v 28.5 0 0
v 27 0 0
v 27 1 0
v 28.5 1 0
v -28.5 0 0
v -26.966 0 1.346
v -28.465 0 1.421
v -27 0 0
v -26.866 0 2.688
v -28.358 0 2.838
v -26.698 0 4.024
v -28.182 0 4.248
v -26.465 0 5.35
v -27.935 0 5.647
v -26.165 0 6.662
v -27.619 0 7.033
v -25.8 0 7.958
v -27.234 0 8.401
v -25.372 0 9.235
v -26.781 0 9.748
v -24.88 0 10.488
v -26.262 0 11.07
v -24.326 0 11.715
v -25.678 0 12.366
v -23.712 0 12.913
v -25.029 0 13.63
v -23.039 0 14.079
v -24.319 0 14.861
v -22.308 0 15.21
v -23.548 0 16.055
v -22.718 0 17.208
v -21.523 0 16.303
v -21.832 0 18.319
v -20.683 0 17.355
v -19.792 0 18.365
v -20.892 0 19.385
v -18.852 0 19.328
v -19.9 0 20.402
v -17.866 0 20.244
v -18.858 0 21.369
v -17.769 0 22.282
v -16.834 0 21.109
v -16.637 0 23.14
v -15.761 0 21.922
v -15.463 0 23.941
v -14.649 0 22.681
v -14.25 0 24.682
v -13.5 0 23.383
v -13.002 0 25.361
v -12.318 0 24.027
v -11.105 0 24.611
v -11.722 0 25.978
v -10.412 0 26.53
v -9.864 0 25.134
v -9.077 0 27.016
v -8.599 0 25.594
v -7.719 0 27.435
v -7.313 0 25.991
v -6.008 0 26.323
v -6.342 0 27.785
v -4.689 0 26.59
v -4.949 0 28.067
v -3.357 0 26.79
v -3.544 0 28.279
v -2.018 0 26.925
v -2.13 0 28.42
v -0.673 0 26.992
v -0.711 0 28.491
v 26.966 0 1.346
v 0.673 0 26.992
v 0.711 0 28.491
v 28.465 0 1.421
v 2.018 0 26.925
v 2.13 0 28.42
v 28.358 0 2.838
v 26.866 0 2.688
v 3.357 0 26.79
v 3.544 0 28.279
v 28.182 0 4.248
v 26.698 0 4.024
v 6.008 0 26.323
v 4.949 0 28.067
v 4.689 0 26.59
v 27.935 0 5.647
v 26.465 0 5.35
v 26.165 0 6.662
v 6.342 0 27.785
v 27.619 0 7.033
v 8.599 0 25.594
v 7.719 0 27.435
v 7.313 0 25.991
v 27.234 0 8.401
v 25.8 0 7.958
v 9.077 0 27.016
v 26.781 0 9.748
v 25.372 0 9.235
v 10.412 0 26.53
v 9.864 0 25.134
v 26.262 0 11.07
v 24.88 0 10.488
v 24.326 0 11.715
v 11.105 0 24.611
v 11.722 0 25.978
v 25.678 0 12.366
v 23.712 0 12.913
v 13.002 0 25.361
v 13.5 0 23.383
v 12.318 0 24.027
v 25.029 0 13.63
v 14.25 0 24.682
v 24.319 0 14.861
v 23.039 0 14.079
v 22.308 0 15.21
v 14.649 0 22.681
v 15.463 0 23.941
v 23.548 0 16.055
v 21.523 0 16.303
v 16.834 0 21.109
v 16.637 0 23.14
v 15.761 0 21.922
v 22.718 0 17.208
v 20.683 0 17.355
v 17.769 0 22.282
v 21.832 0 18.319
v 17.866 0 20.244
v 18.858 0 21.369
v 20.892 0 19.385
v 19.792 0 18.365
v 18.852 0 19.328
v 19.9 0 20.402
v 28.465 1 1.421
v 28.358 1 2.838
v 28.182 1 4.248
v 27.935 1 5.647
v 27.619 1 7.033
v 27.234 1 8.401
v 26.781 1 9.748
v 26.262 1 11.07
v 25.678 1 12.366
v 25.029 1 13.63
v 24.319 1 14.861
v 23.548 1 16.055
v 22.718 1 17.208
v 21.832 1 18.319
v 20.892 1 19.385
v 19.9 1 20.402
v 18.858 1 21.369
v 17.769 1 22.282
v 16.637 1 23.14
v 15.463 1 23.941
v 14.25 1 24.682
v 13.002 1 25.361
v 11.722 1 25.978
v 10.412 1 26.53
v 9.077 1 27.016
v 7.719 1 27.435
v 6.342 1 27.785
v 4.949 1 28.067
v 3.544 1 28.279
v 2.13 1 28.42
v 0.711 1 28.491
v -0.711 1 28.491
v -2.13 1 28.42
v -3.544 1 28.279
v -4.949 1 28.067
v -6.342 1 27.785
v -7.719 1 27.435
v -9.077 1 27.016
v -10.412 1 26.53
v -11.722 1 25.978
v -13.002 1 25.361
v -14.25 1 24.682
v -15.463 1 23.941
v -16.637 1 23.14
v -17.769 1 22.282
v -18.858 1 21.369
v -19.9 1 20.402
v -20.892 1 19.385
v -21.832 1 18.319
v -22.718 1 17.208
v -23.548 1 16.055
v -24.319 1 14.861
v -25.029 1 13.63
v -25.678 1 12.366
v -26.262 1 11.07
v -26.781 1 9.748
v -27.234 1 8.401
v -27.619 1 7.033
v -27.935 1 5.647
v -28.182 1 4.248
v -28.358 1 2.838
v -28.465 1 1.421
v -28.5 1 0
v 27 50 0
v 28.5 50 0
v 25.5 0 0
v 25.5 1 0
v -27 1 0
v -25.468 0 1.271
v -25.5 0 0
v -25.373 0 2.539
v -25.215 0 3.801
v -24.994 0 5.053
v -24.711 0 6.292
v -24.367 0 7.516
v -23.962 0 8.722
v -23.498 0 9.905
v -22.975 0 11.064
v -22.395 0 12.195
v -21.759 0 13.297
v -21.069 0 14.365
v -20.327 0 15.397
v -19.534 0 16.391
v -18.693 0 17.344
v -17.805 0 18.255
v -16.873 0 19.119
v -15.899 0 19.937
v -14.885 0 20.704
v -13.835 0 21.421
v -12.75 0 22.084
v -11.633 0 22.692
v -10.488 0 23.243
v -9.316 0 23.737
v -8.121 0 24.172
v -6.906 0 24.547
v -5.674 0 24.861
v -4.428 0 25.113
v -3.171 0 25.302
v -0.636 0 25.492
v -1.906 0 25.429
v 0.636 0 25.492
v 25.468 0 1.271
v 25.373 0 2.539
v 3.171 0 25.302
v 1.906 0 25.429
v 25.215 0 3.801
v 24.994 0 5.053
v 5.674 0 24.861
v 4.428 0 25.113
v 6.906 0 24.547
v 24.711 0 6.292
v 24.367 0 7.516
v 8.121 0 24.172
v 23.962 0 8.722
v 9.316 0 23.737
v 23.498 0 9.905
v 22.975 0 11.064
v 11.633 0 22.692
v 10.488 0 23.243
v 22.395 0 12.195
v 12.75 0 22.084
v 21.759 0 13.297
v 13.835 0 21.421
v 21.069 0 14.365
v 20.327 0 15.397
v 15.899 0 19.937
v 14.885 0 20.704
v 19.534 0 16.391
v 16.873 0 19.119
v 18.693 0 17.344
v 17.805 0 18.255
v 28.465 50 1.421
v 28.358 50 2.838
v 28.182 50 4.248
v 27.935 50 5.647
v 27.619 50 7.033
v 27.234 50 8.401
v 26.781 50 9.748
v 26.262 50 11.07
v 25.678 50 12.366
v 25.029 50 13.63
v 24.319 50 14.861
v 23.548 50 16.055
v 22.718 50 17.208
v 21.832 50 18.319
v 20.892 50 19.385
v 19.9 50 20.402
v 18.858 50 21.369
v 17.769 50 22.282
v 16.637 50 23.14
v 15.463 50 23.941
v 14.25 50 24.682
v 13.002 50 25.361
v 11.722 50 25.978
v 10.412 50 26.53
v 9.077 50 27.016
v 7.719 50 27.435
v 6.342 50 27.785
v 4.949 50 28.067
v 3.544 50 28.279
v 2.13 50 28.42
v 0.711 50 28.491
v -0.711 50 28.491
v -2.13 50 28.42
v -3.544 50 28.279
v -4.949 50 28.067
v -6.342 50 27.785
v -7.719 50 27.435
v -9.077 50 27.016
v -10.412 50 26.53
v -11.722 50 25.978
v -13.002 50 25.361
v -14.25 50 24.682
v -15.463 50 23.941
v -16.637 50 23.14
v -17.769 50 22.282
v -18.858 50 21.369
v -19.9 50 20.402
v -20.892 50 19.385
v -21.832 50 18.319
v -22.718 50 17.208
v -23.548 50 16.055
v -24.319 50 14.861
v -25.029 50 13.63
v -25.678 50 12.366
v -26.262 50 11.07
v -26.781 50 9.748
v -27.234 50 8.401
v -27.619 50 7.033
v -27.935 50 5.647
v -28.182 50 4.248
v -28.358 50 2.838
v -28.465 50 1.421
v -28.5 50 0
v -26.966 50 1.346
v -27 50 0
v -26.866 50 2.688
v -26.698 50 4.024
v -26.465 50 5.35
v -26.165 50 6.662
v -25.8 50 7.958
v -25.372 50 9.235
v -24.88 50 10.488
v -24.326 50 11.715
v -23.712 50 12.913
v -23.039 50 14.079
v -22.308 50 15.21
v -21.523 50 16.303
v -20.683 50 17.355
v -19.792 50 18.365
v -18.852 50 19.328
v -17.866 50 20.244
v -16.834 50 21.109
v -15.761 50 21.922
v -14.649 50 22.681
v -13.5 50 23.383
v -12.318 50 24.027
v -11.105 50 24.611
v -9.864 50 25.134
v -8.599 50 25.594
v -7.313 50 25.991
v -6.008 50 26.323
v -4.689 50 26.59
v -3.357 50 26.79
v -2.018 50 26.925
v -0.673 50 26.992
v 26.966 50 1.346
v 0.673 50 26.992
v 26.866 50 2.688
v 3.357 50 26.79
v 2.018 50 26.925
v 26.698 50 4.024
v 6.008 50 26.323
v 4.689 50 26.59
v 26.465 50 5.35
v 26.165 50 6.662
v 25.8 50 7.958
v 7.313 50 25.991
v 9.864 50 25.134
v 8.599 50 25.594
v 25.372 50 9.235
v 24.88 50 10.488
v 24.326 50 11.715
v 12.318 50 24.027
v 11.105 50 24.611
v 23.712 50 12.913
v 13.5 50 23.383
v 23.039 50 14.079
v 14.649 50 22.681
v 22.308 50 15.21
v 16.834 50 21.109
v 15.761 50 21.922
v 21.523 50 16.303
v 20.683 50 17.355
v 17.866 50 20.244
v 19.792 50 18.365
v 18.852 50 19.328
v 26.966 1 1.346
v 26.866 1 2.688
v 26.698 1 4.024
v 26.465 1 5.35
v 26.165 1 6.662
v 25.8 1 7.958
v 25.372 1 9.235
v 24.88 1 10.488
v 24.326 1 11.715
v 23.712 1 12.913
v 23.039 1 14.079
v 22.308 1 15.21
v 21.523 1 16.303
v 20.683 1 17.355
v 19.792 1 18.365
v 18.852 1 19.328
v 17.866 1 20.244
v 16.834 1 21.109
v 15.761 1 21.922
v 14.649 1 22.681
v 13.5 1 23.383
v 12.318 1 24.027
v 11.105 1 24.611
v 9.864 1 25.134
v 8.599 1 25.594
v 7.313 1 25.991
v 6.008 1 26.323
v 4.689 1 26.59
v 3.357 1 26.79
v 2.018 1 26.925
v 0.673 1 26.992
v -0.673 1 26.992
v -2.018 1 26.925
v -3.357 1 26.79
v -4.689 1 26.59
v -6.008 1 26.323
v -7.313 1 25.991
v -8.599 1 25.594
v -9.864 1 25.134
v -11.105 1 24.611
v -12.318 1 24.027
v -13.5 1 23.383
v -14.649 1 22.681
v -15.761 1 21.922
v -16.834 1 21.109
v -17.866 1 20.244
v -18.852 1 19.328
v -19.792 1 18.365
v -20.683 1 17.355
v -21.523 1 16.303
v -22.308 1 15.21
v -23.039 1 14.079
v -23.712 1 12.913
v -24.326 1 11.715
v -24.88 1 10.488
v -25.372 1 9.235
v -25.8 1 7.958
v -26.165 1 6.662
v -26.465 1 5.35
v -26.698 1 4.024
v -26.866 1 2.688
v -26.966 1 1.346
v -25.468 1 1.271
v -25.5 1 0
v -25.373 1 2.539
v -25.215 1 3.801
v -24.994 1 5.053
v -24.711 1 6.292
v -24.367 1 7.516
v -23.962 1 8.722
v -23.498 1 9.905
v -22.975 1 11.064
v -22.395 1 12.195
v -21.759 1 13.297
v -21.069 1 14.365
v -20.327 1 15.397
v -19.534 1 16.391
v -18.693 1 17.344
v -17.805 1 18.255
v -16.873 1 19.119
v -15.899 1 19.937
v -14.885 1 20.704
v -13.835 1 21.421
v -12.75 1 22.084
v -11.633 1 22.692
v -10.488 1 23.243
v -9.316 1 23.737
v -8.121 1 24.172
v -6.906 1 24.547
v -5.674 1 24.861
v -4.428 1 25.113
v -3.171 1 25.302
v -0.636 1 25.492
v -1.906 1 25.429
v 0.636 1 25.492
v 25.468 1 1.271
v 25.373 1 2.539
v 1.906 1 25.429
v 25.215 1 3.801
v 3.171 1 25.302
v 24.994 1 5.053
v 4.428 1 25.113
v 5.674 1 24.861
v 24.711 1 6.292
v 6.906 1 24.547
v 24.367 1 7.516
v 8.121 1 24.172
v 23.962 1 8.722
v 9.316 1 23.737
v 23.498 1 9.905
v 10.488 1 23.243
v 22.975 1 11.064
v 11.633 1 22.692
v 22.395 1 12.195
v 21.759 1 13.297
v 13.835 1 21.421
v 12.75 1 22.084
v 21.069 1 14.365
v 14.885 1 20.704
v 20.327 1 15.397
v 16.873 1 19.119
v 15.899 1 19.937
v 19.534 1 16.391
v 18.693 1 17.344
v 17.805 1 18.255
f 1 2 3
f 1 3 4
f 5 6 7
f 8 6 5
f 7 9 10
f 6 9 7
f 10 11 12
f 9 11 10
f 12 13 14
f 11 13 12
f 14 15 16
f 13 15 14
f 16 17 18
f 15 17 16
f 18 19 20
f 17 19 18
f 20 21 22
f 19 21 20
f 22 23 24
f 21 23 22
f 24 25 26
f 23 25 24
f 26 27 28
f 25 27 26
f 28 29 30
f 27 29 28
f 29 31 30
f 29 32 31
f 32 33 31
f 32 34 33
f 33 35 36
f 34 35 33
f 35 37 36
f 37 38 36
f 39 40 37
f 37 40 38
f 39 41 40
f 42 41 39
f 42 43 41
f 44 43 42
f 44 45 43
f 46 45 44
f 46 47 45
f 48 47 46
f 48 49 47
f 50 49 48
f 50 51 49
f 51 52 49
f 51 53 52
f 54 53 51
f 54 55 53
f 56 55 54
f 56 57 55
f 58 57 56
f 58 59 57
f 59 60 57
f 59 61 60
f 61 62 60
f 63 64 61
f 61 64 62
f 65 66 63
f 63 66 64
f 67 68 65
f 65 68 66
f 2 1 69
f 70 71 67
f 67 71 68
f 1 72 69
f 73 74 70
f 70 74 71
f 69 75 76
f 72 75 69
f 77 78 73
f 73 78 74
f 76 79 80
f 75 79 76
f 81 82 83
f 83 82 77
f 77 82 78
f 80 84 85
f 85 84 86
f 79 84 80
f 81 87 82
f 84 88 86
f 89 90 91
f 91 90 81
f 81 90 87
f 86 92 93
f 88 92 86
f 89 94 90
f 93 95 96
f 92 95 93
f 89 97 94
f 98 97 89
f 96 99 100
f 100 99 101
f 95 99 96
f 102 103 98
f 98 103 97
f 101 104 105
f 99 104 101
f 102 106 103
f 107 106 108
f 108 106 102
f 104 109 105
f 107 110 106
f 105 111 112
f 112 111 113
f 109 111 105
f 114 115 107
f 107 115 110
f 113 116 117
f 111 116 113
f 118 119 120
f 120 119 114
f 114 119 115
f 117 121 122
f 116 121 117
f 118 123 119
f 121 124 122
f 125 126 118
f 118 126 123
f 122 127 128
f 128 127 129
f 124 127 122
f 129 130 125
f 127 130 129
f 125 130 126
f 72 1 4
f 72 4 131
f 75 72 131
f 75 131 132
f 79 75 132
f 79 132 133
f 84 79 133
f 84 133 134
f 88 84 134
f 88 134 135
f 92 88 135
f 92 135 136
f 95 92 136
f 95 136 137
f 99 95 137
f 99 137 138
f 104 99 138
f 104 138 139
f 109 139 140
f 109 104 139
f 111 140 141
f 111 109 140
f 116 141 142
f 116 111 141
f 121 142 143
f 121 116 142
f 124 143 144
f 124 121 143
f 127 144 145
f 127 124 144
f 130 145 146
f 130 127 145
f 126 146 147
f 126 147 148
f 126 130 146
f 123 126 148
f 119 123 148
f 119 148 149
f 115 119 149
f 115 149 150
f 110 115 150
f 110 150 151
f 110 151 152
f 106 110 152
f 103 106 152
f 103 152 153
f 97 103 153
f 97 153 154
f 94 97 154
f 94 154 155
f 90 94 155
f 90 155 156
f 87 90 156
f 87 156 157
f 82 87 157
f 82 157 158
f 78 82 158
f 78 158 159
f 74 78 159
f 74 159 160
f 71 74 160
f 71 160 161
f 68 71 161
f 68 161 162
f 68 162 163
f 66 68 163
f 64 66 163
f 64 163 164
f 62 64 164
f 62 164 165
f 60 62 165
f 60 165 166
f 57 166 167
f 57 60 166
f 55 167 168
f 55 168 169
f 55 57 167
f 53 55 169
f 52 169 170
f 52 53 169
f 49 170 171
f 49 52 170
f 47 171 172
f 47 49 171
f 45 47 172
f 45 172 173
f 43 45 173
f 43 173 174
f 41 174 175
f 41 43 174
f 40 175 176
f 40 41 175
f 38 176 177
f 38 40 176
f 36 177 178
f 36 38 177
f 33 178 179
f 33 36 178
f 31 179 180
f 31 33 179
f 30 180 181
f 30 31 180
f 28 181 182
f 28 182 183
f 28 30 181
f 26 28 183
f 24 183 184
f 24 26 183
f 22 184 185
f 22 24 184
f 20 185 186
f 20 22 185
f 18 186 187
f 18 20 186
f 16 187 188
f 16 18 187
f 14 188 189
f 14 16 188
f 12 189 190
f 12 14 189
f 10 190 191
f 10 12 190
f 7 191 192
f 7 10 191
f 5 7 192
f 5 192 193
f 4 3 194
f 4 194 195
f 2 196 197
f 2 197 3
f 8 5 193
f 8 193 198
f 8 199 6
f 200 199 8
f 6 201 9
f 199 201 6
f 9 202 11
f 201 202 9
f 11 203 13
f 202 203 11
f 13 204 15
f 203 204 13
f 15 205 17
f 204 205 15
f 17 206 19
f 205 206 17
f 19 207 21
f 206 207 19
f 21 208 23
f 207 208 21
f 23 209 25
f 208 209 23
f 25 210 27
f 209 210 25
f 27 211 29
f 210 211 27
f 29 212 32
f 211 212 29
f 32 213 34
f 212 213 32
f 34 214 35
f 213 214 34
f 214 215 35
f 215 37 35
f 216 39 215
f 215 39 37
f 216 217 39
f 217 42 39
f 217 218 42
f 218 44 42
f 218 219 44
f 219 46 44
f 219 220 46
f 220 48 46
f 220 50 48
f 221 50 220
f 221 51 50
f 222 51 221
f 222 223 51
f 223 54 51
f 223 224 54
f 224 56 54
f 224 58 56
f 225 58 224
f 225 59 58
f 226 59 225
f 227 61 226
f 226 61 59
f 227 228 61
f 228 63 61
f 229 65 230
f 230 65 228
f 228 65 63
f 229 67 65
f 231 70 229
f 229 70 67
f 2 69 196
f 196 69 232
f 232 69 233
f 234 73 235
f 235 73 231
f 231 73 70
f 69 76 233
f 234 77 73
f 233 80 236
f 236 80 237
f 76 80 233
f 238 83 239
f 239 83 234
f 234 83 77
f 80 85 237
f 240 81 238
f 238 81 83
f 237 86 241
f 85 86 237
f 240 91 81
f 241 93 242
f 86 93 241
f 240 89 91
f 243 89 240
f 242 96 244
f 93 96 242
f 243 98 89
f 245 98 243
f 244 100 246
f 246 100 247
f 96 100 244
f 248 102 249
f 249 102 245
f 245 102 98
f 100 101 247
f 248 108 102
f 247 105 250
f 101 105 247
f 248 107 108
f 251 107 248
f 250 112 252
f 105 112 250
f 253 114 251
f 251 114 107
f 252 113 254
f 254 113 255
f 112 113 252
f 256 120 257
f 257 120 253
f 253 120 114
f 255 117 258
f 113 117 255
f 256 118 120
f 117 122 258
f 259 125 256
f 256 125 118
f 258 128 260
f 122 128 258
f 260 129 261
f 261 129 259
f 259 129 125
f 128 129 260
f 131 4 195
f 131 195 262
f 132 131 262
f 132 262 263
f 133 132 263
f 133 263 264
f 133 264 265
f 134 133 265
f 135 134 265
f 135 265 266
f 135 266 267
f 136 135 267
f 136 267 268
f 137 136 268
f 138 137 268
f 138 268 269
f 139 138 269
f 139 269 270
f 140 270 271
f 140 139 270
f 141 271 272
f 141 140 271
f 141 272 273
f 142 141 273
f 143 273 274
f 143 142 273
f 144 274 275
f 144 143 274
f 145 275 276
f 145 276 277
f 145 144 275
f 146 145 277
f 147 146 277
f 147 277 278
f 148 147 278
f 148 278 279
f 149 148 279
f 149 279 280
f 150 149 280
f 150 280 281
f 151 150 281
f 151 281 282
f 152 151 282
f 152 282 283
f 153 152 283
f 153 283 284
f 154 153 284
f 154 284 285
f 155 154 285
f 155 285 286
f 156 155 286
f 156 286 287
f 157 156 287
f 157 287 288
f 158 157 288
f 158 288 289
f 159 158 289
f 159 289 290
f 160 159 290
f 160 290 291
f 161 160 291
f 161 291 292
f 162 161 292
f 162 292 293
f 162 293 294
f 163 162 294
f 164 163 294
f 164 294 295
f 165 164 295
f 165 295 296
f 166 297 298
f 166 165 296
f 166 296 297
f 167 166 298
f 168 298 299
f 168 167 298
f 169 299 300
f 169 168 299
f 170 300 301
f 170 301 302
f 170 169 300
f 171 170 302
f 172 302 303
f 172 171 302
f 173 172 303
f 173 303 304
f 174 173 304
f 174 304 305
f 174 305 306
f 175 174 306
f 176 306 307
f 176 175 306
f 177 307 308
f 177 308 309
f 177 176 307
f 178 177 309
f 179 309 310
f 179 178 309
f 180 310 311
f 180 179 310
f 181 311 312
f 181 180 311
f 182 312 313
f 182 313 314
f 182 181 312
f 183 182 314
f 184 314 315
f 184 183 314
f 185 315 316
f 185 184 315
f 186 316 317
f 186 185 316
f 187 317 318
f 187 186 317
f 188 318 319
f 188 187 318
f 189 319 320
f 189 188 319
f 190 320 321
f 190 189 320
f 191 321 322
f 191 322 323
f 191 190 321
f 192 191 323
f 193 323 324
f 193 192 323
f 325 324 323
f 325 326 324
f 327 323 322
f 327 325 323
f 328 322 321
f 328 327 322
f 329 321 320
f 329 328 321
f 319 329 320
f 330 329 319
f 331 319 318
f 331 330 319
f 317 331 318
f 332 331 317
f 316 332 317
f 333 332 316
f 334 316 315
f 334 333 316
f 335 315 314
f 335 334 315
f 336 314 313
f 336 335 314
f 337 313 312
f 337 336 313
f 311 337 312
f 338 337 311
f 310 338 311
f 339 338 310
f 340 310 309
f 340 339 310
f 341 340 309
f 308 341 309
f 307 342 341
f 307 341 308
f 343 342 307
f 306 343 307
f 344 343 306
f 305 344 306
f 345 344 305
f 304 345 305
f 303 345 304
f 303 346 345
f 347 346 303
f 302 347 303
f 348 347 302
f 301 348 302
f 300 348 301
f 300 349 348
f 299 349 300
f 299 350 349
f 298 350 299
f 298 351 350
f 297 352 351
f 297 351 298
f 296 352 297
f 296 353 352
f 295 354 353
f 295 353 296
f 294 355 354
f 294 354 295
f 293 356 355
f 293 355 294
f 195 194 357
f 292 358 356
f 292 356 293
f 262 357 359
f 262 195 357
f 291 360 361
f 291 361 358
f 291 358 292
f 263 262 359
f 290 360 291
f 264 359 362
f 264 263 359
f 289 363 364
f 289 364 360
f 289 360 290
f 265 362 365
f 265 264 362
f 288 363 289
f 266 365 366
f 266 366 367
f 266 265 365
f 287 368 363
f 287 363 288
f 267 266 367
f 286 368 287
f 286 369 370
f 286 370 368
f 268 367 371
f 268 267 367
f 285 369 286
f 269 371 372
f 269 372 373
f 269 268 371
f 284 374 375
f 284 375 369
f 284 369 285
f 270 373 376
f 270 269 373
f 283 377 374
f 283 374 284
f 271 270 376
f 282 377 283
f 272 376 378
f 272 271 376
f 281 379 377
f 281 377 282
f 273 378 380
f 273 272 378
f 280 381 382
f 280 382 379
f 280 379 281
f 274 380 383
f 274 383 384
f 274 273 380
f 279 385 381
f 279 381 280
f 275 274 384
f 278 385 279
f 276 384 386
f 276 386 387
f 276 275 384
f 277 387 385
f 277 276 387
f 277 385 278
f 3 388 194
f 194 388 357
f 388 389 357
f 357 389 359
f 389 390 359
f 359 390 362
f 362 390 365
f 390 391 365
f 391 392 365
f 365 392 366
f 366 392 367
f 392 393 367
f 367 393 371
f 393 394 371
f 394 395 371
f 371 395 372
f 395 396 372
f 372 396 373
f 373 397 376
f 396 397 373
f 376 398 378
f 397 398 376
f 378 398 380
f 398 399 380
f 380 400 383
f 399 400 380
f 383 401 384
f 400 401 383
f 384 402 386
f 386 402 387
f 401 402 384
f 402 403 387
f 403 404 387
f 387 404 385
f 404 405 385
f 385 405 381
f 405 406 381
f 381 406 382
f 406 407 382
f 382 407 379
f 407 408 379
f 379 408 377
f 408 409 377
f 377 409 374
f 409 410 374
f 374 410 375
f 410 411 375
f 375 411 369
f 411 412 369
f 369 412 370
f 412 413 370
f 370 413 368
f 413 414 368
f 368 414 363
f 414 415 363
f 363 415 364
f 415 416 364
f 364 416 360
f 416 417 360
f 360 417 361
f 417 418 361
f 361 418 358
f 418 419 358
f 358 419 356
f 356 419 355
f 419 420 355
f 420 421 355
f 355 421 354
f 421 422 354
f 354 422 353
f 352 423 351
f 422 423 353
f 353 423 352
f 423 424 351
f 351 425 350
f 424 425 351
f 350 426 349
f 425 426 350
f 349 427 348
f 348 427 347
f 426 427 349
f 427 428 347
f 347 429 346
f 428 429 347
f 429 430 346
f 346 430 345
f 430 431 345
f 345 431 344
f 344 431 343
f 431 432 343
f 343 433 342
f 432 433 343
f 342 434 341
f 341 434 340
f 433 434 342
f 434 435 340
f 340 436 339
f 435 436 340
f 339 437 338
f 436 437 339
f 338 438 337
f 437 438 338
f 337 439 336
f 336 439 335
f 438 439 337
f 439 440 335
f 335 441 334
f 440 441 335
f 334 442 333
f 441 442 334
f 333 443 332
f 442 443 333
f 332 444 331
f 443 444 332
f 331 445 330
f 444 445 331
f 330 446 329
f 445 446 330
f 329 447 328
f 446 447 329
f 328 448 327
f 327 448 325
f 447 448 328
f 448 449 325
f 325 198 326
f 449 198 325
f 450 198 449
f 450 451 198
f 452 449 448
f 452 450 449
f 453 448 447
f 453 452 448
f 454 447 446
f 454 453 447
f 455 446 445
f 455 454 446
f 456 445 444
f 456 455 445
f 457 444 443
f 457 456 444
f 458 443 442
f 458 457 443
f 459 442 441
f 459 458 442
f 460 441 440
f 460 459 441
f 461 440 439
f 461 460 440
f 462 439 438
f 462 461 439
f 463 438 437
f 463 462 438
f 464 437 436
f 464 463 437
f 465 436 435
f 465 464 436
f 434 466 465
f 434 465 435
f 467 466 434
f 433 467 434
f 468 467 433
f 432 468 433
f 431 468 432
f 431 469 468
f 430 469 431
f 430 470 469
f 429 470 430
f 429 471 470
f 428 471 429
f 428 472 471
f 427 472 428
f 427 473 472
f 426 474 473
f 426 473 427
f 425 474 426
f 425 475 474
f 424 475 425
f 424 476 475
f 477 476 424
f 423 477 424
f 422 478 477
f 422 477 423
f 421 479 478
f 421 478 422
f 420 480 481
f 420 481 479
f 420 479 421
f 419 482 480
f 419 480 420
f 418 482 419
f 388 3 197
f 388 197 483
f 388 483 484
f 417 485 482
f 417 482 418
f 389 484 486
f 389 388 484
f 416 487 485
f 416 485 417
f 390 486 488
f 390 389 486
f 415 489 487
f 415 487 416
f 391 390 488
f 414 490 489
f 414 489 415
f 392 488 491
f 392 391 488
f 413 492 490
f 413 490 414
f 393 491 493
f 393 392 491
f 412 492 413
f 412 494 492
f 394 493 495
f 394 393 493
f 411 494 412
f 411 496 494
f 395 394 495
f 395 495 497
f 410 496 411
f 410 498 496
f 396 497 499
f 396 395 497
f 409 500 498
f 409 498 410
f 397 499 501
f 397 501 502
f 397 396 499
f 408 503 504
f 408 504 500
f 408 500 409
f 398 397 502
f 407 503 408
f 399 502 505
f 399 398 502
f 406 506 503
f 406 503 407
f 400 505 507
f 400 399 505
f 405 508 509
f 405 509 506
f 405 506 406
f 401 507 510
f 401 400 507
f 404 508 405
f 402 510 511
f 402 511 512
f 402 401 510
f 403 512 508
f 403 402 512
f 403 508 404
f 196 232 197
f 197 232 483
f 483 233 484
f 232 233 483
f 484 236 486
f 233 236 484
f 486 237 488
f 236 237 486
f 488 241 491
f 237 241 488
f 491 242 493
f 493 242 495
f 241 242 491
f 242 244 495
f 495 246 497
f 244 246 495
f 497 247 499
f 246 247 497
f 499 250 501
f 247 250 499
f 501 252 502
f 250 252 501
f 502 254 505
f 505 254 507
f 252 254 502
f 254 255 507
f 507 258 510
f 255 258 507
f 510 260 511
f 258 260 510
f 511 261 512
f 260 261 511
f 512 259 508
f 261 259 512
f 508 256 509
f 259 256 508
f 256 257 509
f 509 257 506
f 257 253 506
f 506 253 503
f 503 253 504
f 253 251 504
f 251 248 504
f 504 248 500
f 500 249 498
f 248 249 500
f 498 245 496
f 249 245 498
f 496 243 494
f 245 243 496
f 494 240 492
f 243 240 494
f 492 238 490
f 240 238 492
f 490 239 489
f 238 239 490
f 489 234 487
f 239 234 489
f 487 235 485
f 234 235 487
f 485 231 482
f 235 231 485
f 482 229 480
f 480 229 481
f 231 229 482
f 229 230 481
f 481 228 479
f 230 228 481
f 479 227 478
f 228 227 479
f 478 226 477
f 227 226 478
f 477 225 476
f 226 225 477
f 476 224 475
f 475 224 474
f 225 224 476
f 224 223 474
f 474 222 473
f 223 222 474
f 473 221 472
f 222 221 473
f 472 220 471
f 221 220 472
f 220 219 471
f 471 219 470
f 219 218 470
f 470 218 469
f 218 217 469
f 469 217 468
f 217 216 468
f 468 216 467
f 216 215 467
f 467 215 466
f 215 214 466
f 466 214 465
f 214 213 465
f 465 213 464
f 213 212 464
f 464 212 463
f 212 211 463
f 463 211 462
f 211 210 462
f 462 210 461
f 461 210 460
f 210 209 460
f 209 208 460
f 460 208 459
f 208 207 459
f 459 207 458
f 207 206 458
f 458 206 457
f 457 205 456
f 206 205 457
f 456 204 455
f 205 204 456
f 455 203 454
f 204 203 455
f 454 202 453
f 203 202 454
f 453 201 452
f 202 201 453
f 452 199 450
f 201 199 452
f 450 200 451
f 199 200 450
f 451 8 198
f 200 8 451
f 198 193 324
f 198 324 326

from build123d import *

# Parameters (mm, degrees)
PAD_DEPTH    = 50
PAD001_DEPTH = 1


with BuildPart() as part:
    # Sketch → Pad (new body)
    with BuildSketch(Plane.XZ):
        with BuildLine():
            ThreePointArc((28.5, 0), (0, 28.5), (-28.5, 0))
            Line((-28.5, 0), (-27, 0))
            ThreePointArc((27, 0), (0, 27), (-27, 0))
            Line((27, 0), (28.5, 0))
        make_face()
    extrude(amount=-PAD_DEPTH)

    # Sketch001 → Pad001 (join)
    with BuildSketch(Plane.XZ):
        with BuildLine():
            ThreePointArc((28.5, 0), (0, 28.5), (-28.5, 0))
            Line((-28.5, 0), (-25.5, 0))
            ThreePointArc((25.5, 0), (0, 25.5), (-25.5, 0))
            Line((25.5, 0), (28.5, 0))
        make_face()
    extrude(amount=-PAD001_DEPTH)


solid = part.part
